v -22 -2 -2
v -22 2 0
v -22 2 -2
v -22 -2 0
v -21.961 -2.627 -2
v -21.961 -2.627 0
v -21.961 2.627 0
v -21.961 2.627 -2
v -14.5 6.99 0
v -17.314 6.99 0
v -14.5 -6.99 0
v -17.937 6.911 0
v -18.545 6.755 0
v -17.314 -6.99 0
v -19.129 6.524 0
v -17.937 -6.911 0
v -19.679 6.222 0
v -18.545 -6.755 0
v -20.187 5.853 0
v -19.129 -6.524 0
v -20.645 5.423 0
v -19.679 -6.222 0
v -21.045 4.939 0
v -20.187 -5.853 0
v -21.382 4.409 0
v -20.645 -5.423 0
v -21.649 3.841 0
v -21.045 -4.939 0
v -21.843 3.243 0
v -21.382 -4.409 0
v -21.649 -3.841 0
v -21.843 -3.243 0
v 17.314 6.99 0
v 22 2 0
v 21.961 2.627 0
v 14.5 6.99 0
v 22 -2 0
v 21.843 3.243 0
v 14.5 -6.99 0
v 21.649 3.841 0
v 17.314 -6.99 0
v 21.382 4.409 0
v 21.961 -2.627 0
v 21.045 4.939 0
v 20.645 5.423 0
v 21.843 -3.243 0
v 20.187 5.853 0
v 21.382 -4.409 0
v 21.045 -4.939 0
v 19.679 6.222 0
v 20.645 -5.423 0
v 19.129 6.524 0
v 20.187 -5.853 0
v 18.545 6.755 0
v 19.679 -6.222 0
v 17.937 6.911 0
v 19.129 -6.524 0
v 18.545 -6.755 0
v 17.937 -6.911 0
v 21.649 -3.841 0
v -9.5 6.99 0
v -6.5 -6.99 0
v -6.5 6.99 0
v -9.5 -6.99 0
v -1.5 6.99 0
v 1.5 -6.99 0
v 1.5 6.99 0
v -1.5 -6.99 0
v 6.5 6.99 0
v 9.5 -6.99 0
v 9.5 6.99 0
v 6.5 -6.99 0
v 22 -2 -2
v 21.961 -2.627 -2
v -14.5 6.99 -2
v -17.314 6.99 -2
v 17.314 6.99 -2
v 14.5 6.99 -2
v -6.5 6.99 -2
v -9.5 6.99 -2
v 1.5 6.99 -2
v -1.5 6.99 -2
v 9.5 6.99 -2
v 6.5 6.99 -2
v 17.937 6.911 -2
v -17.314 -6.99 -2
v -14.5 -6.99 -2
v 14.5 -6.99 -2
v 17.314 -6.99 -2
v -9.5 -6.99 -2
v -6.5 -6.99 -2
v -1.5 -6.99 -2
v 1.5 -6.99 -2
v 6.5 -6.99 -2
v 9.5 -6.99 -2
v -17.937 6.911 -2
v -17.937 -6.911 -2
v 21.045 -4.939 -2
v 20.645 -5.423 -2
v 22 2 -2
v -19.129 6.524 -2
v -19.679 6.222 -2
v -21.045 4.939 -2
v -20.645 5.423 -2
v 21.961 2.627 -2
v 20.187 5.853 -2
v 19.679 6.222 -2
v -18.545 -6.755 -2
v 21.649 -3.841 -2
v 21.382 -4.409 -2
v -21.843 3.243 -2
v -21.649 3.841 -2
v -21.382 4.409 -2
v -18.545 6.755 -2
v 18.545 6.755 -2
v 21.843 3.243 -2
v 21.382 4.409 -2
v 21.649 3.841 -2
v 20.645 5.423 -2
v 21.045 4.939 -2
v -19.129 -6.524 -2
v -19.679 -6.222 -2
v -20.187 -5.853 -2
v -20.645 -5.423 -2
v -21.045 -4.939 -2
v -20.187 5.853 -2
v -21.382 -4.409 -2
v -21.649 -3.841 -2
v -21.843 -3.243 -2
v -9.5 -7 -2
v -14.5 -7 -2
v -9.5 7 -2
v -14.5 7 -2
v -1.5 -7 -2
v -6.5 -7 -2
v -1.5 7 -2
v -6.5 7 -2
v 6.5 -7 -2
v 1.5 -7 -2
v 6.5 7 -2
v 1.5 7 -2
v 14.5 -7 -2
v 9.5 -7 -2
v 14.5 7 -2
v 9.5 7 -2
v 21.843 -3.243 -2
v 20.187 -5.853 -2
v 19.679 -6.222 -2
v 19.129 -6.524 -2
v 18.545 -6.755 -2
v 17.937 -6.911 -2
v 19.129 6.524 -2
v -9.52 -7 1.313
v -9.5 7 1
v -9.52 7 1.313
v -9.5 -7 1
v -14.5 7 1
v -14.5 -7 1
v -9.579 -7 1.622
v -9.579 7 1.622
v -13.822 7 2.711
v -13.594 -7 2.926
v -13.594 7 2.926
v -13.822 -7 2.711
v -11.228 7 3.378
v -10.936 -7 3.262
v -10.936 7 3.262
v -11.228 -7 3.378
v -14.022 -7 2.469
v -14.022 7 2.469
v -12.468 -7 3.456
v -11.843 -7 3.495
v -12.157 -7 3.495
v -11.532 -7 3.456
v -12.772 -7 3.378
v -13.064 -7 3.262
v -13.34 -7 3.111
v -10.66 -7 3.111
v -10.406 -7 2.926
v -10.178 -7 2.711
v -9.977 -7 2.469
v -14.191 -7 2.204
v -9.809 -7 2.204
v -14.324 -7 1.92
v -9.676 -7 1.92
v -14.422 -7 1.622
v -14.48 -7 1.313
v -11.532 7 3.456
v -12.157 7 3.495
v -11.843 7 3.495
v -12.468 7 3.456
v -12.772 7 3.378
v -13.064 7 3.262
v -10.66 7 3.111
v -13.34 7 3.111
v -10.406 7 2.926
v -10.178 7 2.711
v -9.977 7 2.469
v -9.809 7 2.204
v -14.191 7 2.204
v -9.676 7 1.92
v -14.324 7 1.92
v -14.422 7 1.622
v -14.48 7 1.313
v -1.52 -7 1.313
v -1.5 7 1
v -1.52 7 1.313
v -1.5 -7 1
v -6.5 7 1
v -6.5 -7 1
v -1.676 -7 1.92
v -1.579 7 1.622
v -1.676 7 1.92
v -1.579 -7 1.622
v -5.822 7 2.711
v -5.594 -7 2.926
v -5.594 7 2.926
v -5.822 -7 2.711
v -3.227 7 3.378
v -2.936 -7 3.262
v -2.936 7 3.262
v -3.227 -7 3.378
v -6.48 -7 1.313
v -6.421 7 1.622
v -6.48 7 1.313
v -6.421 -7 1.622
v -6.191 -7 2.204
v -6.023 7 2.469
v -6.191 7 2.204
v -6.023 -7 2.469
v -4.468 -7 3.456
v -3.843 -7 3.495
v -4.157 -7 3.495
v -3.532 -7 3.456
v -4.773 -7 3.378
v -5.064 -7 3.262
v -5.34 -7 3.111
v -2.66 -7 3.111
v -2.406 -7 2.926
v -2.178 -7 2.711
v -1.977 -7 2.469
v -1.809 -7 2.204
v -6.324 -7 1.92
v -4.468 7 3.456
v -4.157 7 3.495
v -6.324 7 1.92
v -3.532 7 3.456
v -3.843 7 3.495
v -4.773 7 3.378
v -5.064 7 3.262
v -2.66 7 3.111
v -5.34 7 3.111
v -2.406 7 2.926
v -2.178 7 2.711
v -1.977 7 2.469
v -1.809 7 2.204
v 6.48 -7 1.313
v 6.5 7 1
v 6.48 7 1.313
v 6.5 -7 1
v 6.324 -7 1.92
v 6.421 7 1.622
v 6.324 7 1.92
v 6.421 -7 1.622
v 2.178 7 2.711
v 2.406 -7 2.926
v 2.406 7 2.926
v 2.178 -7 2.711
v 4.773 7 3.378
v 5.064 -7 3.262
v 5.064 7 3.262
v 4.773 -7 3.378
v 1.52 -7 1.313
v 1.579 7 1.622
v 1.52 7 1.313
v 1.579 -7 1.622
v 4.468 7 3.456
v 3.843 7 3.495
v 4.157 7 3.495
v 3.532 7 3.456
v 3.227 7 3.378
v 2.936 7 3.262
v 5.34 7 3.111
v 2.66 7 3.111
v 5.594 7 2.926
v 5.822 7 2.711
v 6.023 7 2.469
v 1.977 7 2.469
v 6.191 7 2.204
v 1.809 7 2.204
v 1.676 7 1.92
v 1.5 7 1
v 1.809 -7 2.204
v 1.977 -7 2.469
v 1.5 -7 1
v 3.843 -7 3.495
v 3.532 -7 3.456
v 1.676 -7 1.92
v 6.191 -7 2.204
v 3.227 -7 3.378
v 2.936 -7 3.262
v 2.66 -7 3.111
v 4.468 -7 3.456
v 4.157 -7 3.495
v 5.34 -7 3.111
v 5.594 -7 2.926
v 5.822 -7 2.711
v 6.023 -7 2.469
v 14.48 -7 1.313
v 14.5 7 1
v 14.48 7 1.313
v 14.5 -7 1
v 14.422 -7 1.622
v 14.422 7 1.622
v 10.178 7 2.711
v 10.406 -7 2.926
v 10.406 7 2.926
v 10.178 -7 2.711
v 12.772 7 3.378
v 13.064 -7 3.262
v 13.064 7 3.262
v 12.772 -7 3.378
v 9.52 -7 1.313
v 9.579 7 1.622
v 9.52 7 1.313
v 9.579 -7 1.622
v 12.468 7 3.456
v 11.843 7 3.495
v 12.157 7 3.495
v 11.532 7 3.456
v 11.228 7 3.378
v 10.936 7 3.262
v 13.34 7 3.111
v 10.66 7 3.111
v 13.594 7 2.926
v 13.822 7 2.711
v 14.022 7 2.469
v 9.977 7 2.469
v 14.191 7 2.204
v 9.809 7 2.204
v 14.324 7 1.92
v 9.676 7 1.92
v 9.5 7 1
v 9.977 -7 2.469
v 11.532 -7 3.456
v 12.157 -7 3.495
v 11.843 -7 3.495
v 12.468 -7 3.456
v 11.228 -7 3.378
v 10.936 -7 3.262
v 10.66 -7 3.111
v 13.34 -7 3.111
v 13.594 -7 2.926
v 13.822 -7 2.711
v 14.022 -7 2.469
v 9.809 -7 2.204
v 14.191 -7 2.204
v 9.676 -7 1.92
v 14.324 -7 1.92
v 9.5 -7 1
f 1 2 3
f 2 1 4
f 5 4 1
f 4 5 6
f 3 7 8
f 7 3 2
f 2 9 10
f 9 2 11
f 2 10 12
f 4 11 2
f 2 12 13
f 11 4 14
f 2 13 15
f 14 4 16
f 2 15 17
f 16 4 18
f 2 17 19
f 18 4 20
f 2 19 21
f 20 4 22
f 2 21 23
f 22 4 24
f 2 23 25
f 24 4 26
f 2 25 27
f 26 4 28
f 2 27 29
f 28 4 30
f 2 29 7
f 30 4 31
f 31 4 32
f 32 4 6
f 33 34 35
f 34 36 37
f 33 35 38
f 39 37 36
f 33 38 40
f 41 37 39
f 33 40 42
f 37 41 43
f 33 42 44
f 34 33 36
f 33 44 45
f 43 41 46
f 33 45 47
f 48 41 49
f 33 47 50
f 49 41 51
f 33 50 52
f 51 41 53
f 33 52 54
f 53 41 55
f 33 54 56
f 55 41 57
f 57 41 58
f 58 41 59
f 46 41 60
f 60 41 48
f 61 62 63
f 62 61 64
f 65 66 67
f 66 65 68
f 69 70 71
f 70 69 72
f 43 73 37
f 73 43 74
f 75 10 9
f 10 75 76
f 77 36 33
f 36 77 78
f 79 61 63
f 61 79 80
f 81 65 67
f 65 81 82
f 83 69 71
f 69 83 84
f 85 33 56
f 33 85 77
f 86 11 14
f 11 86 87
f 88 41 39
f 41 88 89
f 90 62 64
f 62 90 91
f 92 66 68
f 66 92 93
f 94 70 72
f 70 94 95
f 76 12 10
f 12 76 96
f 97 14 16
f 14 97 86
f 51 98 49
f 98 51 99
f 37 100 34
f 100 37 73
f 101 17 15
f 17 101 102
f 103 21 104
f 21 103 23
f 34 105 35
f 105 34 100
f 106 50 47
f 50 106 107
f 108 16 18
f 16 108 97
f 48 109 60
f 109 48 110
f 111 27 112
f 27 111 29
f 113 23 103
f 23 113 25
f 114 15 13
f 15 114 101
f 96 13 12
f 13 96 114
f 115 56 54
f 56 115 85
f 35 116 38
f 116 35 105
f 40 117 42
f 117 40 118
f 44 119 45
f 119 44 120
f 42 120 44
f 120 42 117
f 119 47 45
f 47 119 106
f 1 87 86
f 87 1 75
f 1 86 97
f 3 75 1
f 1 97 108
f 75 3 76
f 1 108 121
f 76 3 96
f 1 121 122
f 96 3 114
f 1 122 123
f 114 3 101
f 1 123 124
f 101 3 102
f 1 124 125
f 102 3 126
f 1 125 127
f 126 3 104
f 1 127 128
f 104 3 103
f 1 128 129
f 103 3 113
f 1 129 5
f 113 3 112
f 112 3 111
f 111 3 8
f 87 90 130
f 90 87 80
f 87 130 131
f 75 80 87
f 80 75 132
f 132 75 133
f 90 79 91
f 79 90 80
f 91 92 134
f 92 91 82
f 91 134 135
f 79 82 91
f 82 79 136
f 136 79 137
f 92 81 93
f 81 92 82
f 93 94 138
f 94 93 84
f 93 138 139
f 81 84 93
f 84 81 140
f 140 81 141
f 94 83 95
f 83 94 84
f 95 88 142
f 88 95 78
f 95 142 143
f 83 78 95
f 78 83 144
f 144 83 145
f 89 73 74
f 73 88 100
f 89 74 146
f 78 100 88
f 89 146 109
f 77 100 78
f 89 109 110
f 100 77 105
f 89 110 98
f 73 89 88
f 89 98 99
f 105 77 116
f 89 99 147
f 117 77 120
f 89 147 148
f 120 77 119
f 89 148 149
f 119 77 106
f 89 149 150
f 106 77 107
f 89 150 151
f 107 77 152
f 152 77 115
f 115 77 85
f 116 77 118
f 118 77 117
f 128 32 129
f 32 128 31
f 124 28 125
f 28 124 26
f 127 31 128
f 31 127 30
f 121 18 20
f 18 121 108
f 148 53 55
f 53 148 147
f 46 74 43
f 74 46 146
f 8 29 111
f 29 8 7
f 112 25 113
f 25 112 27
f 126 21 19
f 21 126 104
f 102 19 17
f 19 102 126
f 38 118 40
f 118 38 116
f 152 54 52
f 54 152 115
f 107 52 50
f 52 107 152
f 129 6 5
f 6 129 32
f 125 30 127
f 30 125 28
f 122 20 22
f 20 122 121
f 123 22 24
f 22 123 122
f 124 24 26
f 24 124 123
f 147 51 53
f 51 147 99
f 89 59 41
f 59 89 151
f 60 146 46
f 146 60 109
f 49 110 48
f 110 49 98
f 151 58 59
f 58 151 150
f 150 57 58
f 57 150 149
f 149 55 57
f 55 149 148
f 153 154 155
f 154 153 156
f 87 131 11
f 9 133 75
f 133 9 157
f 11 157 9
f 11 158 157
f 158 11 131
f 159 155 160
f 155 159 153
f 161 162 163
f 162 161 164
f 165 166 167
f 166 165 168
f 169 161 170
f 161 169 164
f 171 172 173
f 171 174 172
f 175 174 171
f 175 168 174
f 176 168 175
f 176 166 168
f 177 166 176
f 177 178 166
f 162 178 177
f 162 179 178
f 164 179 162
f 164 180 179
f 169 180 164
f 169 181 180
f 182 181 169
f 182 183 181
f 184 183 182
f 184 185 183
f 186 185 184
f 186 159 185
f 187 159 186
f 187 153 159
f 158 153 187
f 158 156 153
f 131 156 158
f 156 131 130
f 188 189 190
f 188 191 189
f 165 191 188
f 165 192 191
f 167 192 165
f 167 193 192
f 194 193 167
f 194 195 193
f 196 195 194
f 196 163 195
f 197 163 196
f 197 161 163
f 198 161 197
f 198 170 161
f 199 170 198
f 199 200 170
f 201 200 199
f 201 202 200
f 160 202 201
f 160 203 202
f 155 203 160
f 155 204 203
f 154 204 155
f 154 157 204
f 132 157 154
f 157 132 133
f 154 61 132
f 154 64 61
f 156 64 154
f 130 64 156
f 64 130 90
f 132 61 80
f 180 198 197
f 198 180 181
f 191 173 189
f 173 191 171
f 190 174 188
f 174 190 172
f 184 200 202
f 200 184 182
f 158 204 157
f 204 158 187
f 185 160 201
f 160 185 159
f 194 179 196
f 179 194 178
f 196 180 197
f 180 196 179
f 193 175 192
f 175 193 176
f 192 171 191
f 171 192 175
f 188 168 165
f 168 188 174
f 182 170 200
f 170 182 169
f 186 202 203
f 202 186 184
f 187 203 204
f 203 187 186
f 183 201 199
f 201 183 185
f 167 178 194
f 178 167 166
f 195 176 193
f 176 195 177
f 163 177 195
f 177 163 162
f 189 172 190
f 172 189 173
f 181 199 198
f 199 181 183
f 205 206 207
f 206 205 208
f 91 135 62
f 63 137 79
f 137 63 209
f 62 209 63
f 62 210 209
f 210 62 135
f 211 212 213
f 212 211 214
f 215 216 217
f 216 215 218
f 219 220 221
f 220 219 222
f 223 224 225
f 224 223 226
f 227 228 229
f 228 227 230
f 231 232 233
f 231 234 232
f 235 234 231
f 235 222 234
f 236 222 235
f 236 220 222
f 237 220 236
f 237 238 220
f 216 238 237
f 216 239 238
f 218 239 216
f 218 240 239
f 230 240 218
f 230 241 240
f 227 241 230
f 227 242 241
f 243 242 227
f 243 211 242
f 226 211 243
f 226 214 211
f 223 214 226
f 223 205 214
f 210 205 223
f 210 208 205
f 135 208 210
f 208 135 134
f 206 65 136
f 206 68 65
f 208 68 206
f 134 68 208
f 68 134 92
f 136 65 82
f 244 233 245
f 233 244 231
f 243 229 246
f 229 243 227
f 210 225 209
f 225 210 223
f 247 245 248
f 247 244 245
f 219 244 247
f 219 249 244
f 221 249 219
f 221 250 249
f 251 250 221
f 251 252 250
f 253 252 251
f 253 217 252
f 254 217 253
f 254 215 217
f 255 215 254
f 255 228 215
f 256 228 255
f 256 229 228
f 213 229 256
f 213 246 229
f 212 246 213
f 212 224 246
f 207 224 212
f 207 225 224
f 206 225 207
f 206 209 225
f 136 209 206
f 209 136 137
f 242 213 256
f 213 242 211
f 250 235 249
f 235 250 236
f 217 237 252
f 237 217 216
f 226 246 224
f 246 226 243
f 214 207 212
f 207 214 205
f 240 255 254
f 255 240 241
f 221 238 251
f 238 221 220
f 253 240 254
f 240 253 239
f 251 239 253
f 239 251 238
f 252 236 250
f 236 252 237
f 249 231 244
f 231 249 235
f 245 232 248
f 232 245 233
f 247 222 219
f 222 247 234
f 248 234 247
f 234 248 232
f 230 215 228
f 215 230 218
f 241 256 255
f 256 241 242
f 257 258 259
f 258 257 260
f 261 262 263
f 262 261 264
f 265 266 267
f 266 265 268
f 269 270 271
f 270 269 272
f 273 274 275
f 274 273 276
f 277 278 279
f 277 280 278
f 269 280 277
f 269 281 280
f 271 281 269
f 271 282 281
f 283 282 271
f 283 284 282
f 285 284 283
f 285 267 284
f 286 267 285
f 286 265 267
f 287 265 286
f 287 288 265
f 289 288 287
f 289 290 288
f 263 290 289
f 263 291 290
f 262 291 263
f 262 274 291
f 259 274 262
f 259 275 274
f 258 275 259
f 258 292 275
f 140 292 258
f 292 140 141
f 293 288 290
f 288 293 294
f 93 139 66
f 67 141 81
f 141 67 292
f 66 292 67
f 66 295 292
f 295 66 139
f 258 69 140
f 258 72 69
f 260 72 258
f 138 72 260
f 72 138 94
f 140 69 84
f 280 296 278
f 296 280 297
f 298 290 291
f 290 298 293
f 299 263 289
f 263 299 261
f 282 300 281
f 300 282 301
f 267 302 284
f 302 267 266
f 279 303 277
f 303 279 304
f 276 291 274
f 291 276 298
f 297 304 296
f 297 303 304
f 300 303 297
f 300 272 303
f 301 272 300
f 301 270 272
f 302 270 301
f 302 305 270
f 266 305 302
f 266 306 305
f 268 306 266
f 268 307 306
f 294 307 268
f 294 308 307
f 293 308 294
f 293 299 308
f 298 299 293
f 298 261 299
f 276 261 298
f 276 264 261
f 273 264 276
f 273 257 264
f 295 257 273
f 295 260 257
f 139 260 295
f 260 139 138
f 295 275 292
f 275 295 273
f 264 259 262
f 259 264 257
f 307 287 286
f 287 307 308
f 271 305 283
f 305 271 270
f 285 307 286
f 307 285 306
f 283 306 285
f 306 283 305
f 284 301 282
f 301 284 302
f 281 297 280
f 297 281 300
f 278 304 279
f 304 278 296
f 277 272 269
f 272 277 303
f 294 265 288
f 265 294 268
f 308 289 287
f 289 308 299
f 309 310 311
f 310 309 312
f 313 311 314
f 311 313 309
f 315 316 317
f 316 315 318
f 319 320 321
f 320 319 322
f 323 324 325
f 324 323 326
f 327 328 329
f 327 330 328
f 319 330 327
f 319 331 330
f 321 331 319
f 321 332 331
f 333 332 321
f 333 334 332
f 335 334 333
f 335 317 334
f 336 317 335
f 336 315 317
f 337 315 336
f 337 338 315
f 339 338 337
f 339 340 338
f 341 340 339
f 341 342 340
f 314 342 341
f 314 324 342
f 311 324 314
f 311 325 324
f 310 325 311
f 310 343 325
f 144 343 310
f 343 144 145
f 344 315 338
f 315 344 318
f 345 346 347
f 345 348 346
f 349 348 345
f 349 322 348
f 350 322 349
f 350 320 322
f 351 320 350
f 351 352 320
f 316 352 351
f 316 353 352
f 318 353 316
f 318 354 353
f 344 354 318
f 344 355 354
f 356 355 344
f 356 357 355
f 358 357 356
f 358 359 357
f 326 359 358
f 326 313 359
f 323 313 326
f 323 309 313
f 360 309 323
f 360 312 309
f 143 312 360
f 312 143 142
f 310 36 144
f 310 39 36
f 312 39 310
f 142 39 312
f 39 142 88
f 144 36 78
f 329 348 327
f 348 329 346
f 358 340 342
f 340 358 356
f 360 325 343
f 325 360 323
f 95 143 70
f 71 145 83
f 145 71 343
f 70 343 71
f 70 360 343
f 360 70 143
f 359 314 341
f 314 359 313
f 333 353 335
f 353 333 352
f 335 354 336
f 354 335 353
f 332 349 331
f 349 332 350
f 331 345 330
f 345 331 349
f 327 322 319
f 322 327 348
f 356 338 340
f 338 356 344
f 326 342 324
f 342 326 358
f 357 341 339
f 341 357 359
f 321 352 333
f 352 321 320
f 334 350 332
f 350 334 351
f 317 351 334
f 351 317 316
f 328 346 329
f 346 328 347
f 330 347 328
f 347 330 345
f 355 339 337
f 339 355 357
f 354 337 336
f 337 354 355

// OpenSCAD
$fn = 50;


difference() {
	union() {
		translate(v = [0, 0, -2]) {
			hull() {
				translate(v = [-17.0000000000, 2.0000000000, 0]) {
					cylinder(h = 2, r = 5);
				}
				translate(v = [17.0000000000, 2.0000000000, 0]) {
					cylinder(h = 2, r = 5);
				}
				translate(v = [-17.0000000000, -2.0000000000, 0]) {
					cylinder(h = 2, r = 5);
				}
				translate(v = [17.0000000000, -2.0000000000, 0]) {
					cylinder(h = 2, r = 5);
				}
			}
		}
		translate(v = [-12.0000000000, 7.0000000000, -1.5000000000]) {
			rotate(a = [90, 0, 0]) {
				hull() {
					translate(v = [-0.0000000000, 2.5000000000, 0]) {
						cylinder(h = 14, r = 2.5000000000);
					}
					translate(v = [0.0000000000, 2.5000000000, 0]) {
						cylinder(h = 14, r = 2.5000000000);
					}
					translate(v = [-0.0000000000, -2.5000000000, 0]) {
						cylinder(h = 14, r = 2.5000000000);
					}
					translate(v = [0.0000000000, -2.5000000000, 0]) {
						cylinder(h = 14, r = 2.5000000000);
					}
				}
			}
		}
		translate(v = [-4.0000000000, 7.0000000000, -1.5000000000]) {
			rotate(a = [90, 0, 0]) {
				hull() {
					translate(v = [-0.0000000000, 2.5000000000, 0]) {
						cylinder(h = 14, r = 2.5000000000);
					}
					translate(v = [0.0000000000, 2.5000000000, 0]) {
						cylinder(h = 14, r = 2.5000000000);
					}
					translate(v = [-0.0000000000, -2.5000000000, 0]) {
						cylinder(h = 14, r = 2.5000000000);
					}
					translate(v = [0.0000000000, -2.5000000000, 0]) {
						cylinder(h = 14, r = 2.5000000000);
					}
				}
			}
		}
		translate(v = [4.0000000000, 7.0000000000, -1.5000000000]) {
			rotate(a = [90, 0, 0]) {
				hull() {
					translate(v = [-0.0000000000, 2.5000000000, 0]) {
						cylinder(h = 14, r = 2.5000000000);
					}
					translate(v = [0.0000000000, 2.5000000000, 0]) {
						cylinder(h = 14, r = 2.5000000000);
					}
					translate(v = [-0.0000000000, -2.5000000000, 0]) {
						cylinder(h = 14, r = 2.5000000000);
					}
					translate(v = [0.0000000000, -2.5000000000, 0]) {
						cylinder(h = 14, r = 2.5000000000);
					}
				}
			}
		}
		translate(v = [12.0000000000, 7.0000000000, -1.5000000000]) {
			rotate(a = [90, 0, 0]) {
				hull() {
					translate(v = [-0.0000000000, 2.5000000000, 0]) {
						cylinder(h = 14, r = 2.5000000000);
					}
					translate(v = [0.0000000000, 2.5000000000, 0]) {
						cylinder(h = 14, r = 2.5000000000);
					}
					translate(v = [-0.0000000000, -2.5000000000, 0]) {
						cylinder(h = 14, r = 2.5000000000);
					}
					translate(v = [0.0000000000, -2.5000000000, 0]) {
						cylinder(h = 14, r = 2.5000000000);
					}
				}
			}
		}
	}
	union() {
		translate(v = [-250.0000000000, -250.0000000000, -502]) {
			cube(size = [500, 500, 500]);
		}
		translate(v = [-250.0000000000, -250.0000000000, -502]) {
			cube(size = [500, 500, 500]);
		}
		translate(v = [-250.0000000000, -250.0000000000, -502]) {
			cube(size = [500, 500, 500]);
		}
	}
}
